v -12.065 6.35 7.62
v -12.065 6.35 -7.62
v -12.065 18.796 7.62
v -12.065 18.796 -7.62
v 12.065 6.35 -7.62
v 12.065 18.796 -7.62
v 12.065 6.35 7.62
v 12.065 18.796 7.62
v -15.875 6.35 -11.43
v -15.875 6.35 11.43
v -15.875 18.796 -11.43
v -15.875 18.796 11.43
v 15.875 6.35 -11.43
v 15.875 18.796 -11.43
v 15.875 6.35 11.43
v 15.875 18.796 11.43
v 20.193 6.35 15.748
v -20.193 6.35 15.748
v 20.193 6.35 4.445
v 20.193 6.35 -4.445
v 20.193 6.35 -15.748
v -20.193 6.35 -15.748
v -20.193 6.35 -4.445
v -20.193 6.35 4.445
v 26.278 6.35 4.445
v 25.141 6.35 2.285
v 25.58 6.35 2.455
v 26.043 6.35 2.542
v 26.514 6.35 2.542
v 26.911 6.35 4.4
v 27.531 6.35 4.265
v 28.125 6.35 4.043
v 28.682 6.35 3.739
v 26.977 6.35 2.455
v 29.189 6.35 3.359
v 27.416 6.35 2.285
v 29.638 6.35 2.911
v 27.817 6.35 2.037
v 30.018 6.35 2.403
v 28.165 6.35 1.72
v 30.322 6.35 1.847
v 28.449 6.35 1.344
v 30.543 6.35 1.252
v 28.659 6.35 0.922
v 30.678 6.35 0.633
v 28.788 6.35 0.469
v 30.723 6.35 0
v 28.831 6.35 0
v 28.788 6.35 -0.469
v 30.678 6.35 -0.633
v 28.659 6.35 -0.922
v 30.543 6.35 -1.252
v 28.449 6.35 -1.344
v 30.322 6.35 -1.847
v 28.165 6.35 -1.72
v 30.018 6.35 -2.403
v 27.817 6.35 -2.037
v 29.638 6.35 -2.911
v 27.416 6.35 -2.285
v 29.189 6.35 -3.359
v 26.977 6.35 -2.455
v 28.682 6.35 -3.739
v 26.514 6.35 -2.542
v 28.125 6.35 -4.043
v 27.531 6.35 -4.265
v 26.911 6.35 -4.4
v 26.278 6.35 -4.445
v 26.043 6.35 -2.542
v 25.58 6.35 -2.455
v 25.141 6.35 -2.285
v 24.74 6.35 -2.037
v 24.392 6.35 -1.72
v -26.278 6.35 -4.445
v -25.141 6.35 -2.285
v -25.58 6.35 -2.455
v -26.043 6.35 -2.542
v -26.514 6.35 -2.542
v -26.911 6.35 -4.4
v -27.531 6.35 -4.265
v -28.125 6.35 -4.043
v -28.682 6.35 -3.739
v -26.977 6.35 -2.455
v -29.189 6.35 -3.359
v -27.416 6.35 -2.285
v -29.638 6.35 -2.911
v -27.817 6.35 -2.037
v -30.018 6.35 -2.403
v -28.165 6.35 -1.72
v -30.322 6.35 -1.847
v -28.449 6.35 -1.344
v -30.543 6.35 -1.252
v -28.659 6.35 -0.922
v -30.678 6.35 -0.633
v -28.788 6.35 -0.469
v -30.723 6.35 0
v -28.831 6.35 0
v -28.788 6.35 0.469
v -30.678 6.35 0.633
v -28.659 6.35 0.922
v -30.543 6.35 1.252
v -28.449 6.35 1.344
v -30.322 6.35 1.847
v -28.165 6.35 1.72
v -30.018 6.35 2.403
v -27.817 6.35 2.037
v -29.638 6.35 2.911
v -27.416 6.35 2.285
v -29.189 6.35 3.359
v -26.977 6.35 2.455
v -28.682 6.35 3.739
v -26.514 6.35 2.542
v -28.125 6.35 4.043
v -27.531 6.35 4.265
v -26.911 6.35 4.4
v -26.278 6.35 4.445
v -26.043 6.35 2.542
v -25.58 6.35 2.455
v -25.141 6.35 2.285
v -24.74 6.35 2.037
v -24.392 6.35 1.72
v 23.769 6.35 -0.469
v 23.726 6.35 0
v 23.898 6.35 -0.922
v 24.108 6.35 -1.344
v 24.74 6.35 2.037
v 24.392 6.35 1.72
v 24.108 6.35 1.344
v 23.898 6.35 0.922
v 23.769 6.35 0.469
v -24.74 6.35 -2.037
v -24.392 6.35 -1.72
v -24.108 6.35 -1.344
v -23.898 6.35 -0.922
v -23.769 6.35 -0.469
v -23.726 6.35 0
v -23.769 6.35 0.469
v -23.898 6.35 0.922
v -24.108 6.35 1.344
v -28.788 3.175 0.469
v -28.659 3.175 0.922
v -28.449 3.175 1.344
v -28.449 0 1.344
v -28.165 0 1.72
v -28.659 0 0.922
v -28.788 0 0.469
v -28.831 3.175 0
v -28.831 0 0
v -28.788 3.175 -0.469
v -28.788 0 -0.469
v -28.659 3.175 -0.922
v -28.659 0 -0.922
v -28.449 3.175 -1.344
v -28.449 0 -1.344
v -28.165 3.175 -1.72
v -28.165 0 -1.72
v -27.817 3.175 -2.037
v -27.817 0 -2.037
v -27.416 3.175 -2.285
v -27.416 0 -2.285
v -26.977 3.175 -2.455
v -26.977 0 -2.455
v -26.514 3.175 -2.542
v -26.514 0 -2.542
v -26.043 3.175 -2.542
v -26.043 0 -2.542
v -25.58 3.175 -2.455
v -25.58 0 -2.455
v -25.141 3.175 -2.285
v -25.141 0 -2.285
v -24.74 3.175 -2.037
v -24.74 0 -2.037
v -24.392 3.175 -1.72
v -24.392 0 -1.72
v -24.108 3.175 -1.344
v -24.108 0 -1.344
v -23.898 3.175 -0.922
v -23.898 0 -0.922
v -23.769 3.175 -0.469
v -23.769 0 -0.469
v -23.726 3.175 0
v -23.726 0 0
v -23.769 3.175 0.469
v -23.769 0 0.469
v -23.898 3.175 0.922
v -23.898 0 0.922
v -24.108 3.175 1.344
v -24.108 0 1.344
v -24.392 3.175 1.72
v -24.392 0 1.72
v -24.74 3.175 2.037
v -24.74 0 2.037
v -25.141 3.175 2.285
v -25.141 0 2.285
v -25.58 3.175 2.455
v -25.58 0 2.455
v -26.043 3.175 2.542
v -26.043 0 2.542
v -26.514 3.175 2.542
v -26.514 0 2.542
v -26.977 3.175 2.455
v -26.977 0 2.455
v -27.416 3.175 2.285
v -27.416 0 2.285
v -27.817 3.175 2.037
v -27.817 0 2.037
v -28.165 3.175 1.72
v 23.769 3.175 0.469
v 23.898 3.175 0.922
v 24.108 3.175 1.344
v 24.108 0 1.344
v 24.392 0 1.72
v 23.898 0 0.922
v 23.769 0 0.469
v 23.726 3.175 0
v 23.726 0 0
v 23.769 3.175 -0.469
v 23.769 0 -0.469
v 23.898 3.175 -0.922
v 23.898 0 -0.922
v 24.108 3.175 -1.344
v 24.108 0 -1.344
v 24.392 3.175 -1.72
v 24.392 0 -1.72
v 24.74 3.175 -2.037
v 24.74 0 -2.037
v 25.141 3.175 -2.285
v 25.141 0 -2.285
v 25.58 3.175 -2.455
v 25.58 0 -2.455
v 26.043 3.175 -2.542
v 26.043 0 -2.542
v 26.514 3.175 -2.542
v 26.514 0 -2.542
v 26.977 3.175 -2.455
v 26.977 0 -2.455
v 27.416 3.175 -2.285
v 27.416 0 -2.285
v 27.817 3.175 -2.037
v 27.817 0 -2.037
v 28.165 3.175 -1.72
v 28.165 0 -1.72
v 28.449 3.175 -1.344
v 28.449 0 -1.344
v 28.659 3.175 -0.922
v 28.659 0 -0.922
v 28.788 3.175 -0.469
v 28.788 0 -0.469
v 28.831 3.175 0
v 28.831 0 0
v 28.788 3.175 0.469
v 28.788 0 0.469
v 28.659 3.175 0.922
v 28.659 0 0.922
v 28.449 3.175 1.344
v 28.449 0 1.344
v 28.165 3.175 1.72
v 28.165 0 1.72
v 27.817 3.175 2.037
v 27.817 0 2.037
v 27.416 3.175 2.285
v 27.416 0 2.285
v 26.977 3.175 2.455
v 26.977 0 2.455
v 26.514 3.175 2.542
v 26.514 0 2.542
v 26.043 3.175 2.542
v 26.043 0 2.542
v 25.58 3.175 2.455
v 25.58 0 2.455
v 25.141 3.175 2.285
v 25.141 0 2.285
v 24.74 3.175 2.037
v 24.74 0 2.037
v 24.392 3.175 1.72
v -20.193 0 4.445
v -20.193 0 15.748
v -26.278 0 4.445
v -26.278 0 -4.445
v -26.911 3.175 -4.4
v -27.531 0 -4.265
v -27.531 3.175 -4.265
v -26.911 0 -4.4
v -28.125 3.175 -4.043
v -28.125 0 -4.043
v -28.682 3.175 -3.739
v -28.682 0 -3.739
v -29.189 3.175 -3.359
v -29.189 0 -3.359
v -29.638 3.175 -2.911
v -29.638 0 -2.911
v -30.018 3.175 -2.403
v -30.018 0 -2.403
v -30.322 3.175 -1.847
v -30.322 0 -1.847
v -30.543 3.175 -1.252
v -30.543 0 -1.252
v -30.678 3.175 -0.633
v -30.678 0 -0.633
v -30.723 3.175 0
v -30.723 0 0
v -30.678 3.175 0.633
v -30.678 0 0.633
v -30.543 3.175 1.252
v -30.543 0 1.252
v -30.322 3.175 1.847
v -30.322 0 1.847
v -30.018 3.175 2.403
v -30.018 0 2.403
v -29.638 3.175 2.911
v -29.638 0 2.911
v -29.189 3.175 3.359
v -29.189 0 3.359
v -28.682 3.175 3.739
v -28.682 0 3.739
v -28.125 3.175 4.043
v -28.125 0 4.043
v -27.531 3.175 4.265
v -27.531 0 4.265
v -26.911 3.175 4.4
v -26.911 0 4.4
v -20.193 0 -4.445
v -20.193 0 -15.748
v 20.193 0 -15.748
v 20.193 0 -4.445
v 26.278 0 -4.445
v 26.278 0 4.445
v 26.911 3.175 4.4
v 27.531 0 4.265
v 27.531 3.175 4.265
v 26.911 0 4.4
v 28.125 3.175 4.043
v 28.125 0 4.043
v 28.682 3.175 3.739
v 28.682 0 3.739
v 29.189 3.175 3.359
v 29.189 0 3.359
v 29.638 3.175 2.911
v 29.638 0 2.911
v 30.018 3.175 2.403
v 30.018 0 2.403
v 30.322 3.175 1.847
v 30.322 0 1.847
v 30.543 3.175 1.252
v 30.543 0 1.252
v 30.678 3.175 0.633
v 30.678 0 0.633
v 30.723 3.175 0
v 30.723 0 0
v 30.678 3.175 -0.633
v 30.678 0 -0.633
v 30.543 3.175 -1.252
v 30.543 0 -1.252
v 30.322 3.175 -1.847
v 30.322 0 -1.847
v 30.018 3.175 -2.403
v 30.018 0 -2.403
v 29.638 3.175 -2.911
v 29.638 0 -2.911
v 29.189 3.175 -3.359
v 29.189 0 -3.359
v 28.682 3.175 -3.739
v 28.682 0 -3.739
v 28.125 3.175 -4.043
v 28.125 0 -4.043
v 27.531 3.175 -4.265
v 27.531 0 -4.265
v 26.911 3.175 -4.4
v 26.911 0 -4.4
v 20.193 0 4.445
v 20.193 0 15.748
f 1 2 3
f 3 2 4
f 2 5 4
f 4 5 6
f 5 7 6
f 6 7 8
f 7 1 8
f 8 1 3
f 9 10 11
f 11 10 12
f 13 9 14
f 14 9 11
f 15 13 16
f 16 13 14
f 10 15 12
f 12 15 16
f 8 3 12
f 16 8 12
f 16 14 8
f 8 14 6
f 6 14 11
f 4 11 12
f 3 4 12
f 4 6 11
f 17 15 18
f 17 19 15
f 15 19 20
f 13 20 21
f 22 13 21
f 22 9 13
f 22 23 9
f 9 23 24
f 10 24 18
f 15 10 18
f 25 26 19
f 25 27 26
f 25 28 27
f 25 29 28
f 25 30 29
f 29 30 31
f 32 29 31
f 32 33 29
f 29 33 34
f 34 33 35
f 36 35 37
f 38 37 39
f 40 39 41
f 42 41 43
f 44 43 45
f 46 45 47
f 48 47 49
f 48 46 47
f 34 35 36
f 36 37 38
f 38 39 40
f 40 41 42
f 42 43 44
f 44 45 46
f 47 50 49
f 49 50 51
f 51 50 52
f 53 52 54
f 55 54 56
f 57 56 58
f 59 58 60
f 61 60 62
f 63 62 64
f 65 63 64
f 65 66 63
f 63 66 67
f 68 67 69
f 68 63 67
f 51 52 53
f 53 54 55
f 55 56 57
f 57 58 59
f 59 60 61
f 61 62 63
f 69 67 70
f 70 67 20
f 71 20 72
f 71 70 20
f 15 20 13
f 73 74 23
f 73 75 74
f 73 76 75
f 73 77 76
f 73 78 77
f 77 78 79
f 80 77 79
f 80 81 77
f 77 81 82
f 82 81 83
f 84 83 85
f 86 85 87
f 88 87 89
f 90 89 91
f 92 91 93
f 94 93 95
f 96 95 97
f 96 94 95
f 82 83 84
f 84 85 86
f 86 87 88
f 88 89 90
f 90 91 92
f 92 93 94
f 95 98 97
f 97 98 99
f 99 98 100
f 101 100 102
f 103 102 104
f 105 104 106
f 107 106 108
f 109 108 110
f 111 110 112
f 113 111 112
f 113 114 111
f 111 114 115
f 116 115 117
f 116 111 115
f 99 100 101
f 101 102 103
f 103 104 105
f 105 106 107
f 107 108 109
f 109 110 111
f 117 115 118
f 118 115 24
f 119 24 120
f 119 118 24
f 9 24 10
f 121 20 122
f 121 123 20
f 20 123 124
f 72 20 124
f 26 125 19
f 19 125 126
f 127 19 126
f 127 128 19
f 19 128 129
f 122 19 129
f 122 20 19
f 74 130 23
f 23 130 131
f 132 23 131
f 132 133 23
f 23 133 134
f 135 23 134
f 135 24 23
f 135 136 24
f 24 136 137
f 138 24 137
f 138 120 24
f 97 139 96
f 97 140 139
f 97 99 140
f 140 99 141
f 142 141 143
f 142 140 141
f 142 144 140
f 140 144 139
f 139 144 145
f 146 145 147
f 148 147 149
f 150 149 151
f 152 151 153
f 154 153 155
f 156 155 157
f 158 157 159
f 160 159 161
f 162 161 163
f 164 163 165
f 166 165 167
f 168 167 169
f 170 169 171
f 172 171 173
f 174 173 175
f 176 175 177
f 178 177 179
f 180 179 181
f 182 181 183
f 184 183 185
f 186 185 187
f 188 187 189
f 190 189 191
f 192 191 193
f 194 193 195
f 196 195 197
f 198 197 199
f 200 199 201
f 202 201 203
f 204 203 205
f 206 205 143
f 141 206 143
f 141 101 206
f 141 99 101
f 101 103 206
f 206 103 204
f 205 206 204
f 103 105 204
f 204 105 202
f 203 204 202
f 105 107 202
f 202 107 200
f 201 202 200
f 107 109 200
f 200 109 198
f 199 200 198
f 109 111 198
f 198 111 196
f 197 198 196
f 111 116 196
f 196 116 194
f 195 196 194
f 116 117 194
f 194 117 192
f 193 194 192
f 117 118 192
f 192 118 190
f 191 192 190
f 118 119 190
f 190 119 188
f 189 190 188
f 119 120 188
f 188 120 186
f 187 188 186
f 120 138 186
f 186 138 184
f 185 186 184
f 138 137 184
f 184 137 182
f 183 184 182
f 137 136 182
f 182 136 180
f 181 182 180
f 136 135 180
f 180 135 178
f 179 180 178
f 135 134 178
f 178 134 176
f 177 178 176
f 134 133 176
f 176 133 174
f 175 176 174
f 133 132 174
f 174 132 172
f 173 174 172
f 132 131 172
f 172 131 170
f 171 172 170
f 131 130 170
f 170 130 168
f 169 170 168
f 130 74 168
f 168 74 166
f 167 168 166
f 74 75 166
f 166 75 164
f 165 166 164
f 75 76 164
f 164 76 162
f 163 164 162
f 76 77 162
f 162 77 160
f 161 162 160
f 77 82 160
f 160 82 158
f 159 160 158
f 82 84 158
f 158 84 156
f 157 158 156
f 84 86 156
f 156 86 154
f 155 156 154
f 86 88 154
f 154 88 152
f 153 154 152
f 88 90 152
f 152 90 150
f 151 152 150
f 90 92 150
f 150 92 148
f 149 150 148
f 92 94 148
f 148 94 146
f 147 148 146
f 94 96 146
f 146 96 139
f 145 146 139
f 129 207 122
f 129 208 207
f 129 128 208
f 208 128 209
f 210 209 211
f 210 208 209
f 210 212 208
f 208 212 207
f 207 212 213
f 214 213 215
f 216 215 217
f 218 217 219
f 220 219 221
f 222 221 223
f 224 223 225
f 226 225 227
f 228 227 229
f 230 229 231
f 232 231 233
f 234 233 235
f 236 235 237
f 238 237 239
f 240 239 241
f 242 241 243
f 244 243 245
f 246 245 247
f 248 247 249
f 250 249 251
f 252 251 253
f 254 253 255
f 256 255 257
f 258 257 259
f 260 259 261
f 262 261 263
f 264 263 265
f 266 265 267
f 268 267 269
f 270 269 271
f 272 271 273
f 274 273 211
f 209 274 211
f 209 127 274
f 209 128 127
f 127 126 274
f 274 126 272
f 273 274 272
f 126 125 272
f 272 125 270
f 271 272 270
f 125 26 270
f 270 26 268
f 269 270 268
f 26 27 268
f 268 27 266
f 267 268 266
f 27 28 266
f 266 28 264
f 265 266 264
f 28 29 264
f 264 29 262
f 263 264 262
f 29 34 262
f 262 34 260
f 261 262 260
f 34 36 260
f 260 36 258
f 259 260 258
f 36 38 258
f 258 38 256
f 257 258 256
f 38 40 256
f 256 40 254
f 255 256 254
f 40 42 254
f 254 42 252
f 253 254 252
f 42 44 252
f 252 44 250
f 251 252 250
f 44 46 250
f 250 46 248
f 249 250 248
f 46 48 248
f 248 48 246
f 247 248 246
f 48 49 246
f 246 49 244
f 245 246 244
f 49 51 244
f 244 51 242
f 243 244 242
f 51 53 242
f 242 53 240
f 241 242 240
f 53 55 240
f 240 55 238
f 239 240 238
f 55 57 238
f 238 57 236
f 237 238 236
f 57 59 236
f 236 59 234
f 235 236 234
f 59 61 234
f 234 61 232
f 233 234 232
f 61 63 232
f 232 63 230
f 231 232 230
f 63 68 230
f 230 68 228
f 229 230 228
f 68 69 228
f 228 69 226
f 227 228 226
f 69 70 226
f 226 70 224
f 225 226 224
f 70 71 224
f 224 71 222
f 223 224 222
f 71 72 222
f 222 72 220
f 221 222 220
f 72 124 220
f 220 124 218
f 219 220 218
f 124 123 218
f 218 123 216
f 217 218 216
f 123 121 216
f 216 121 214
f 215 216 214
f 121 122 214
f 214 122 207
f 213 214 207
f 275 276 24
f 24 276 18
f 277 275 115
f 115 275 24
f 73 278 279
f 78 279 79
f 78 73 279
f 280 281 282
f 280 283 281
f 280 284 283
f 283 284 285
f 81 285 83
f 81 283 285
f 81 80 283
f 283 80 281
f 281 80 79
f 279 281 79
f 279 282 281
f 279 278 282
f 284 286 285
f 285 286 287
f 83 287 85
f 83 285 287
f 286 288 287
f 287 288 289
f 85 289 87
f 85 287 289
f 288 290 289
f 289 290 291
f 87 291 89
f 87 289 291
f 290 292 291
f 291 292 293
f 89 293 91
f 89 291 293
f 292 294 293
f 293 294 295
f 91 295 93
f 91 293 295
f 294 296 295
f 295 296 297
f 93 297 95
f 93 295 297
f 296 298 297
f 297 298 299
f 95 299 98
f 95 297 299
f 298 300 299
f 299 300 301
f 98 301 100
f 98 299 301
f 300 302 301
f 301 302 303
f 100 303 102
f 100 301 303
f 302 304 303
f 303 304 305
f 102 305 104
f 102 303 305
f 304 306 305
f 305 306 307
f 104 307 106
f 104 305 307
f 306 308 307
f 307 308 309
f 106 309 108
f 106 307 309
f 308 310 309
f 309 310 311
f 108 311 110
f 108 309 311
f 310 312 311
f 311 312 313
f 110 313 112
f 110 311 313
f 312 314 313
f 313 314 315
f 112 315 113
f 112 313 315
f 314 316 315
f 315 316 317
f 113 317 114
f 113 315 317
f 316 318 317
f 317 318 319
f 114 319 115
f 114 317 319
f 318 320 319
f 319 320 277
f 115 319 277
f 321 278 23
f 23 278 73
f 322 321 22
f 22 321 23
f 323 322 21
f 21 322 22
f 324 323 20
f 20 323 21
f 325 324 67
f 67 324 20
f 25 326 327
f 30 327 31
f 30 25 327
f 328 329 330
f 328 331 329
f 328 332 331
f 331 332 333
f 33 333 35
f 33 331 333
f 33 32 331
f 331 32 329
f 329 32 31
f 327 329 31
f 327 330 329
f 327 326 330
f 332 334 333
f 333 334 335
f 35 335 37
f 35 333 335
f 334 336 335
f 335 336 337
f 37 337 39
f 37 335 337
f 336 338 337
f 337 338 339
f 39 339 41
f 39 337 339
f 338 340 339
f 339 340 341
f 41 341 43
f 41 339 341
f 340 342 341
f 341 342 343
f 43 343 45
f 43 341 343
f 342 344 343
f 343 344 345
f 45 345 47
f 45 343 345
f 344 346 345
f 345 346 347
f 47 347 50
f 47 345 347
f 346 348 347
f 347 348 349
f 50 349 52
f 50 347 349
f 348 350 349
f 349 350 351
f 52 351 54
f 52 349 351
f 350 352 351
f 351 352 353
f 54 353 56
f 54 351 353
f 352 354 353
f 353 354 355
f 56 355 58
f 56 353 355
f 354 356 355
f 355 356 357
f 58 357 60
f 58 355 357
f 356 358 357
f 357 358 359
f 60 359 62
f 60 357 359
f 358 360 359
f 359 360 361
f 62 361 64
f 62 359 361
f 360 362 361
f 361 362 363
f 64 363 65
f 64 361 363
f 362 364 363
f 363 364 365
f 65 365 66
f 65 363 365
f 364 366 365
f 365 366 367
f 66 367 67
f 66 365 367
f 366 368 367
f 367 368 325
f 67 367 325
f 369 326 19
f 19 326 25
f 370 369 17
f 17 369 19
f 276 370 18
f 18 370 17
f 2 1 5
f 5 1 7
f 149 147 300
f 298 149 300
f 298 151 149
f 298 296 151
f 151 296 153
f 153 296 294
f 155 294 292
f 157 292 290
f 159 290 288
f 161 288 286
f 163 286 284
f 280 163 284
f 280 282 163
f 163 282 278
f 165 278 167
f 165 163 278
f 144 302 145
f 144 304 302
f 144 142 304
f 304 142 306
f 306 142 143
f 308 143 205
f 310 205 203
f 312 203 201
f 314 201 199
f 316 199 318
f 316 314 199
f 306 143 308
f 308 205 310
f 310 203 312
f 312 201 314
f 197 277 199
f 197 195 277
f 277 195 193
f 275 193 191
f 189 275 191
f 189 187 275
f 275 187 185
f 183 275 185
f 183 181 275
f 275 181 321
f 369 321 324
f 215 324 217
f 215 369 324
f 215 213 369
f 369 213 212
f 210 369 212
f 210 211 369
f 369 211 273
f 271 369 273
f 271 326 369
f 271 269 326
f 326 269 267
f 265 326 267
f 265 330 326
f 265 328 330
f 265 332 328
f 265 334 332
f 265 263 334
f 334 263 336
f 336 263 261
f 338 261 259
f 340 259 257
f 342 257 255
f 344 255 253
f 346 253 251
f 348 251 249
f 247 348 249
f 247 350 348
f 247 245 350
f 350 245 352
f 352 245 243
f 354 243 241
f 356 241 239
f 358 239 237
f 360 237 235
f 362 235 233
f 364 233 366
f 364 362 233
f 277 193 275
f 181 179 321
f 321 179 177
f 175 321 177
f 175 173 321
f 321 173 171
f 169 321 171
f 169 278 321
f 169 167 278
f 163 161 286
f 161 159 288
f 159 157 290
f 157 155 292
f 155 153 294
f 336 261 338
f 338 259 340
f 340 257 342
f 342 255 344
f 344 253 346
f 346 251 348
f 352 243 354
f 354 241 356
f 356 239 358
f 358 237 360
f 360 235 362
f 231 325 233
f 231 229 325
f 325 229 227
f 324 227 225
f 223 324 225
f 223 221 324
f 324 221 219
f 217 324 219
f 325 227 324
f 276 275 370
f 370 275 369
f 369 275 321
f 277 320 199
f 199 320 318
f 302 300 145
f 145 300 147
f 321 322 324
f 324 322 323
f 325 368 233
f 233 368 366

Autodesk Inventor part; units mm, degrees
ref_plane "YZ Plane" through (0, 0, 0) normal (1, 0, 0) x (0, 1, 0)
ref_plane "XZ Plane" through (0, 0, 0) normal (0, 1, 0) x (-1, 0, 0)
ref_plane "XY Plane" through (0, 0, 0) normal (0, 0, 1) x (1, 0, 0)
sketch "Sketch1" plane through (0, 0, 0) normal (0, 1, 0) x (-1, 0, 0)
  line L0 (20.193, 15.748) -> (-20.193, 15.748)
  line L1 (-20.193, -15.748) -> (20.193, -15.748)
  line L2 (20.193, 15.748) -> (-20.193, -15.748) construction
  line L3 (-20.193, 15.748) -> (20.193, -15.748) construction
  line L4 (26.2784, 0) -> (13.1572, 0) construction
  line L5 (26.2784, 4.445) -> (20.193, 4.445)
  line L6 (20.193, -4.445) -> (26.2784, -4.445)
  arc A0 (26.2784, -4.445) -> (26.2784, 4.445) centre (26.2784, 0) ccw
  line L7 (0, -15.748) -> (0, 15.748) construction
  line L8 (-26.2784, 4.445) -> (-20.193, 4.445)
  line L9 (-20.193, -4.445) -> (-26.2784, -4.445)
  arc A1 (-26.2784, 4.445) -> (-26.2784, -4.445) centre (-26.2784, 0) ccw
  line L10 (20.193, -15.748) -> (20.193, -4.445)
  line L11 (20.193, 4.445) -> (20.193, 15.748)
  line L12 (-20.193, 15.748) -> (-20.193, 4.445)
  line L13 (-20.193, -4.445) -> (-20.193, -15.748)
  circle A2 centre (-26.2784, 0) radius 2.5527
  circle A3 centre (26.2784, 0) radius 2.5527
  point P0 (0, 0)
  point P1 (19.7178, 0)
  dimension "d0" = 40.386
  dimension "d1" = 31.496
  dimension "d2" = 8.89
  dimension "d5" = 5.1054
  dimension "d6" = 5.1054
extrude "Extrusion2" add sketch "Sketch1" along normal blind 6.35
sketch "Sketch5" plane through (0, 6.35, 0) normal (0, 1, 0) x (1, 0, 0)
  line L0 (-15.875, -11.43) -> (15.875, -11.43)
  line L1 (15.875, -11.43) -> (15.875, 11.43)
  line L2 (15.875, 11.43) -> (-15.875, 11.43)
  line L3 (-15.875, 11.43) -> (-15.875, -11.43)
  line L4 (-15.875, -11.43) -> (15.875, 11.43) construction
  line L5 (15.875, -11.43) -> (-15.875, 11.43) construction
  line L6 (-12.065, -7.62) -> (12.065, -7.62)
  line L7 (12.065, -7.62) -> (12.065, 7.62)
  line L8 (12.065, 7.62) -> (-12.065, 7.62)
  line L9 (-12.065, 7.62) -> (-12.065, -7.62)
  line L10 (-12.065, -7.62) -> (12.065, 7.62) construction
  line L11 (12.065, -7.62) -> (-12.065, 7.62) construction
  point P0 (0, 0)
  dimension "d17" = 31.75
  dimension "d18" = 22.86
  dimension "d19" = 3.81
  dimension "d20" = 3.81
extrude "Extrusion5" add sketch "Sketch5" along normal blind 12.446
equation "\"d0\" = 2 * imuBoxWallThickness + imuBoardLength + 2 * imuPrintError"
equation "\"d1\" = 2 * imuBoxWallThickness + imuBoardWidth + 2 * imuPrintError"
equation "\"d2\" = widthSlot"
equation "\"d7\" = imuBoxBottom"
equation "\"d17\" = imuBoxTopLength"
equation "\"d18\" = imuBoxTopWidth"
equation "\"d19\" = imuBoxWallThickness"
equation "\"d20\" = imuBoxWallThickness"
equation "\"imuBoardWidth\" = 22.86"
equation "\"imuBoardLength\" = 31.75"
equation "\"imuBoardTopThickness\" = 11.176"
equation "\"imuBoardBottomThickness\" = 5.334"
equation "\"imuBoardHoleDistance\" = 19.7104"
equation "\"imuBoxWallThickness\" = 3.81"
equation "\"widthSlot\" = 8.89"
equation "\"imuBoxBottom\" = 6.35"
equation "\"imuBoxHeight\" = 19.05"
equation "\"imuPrintError\" = 0.508"
equation "\"imuBoxTopWidth\" = imuBoardWidth"
equation "\"imuBoxTopLength\" = imuBoardLength"
properties part number "fc-GyroAccelBoxTop"
